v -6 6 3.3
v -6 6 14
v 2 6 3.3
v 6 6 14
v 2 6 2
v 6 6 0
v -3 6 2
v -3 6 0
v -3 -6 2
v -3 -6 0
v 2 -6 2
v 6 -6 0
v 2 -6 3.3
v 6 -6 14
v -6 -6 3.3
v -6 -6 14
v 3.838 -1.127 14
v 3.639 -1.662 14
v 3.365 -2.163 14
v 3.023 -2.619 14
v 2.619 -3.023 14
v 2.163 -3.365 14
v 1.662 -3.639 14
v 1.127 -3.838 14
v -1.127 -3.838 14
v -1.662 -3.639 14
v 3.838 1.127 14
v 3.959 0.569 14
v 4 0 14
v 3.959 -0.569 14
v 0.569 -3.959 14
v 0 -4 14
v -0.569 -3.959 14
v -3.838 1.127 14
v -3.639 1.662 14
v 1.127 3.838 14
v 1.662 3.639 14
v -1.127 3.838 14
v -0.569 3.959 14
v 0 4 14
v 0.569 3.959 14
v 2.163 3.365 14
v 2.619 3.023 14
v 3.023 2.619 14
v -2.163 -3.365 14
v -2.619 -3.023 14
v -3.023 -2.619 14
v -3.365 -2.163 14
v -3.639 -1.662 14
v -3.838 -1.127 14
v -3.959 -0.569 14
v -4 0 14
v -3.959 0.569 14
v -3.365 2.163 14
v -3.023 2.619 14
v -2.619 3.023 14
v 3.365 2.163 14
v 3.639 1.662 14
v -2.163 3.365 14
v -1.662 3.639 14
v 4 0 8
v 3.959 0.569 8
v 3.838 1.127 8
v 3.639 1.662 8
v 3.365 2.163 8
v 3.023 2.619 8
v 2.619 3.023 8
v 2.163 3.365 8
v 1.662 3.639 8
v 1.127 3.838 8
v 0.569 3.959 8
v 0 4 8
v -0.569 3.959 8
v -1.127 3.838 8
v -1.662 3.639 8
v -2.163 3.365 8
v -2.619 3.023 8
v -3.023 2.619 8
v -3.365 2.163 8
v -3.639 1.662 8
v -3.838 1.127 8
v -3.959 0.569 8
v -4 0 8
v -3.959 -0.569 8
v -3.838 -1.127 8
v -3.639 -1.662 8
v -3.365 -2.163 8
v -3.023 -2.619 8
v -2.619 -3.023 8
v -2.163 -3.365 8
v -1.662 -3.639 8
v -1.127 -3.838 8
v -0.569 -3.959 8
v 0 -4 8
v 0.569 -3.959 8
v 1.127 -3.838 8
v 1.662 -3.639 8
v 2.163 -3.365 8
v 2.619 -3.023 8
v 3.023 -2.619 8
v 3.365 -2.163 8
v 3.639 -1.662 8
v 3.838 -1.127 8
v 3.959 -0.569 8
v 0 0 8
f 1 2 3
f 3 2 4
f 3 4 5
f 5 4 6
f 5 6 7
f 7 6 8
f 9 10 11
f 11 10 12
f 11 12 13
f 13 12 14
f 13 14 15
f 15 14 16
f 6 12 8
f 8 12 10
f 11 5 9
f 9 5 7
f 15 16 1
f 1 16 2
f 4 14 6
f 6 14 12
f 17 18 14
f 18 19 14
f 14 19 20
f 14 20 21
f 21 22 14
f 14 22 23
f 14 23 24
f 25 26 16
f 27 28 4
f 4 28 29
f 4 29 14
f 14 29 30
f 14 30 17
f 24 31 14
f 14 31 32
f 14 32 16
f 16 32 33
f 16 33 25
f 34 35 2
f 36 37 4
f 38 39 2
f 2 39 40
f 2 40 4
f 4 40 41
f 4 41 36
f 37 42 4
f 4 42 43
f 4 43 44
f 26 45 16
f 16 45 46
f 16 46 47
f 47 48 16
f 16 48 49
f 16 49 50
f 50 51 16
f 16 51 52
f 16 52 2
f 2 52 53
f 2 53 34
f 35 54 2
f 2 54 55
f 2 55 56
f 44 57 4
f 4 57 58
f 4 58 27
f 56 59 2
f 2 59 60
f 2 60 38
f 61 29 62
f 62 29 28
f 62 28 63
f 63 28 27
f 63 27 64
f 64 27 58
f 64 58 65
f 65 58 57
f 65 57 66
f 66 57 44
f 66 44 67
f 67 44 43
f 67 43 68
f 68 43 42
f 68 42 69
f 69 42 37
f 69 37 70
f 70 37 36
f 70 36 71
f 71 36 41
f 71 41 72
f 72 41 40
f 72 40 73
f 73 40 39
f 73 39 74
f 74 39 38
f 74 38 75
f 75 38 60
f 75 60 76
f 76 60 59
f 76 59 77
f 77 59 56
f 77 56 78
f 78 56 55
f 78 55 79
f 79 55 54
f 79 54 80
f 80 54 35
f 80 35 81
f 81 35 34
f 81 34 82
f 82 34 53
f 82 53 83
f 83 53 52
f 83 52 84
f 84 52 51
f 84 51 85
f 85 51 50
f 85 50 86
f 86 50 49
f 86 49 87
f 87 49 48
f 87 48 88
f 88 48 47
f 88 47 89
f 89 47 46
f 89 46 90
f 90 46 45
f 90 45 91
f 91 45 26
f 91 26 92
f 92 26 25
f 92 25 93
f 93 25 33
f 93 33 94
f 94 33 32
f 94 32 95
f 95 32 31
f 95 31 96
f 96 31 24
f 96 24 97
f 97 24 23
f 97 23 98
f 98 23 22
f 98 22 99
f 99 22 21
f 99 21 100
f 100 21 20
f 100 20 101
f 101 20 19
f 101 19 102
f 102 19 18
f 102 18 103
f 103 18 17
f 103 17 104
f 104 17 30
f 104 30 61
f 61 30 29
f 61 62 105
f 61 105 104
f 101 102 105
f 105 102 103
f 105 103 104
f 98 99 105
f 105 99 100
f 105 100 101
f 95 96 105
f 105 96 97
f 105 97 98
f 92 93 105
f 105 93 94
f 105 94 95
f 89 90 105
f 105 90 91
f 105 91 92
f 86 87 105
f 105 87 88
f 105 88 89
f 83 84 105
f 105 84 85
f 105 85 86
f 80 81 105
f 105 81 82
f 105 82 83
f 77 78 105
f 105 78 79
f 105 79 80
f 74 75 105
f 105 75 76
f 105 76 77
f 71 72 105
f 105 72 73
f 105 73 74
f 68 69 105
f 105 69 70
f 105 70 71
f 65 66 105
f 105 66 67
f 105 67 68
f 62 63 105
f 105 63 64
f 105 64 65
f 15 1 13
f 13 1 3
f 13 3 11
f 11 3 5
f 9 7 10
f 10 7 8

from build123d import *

# Parameters (mm, degrees)
ESQUISSE1_W             = 12
ESQUISSE1_H             = 12
BOSS_EXTRU_1_DEPTH      = 14
ESQUISSE2_R             = 4
ENL_V_MAT_EXTRU_1_DEPTH = 6
ESQUISSE3_W             = 1.3
ESQUISSE3_H             = 14.296544168
ENL_V_MAT_EXTRU_2_DEPTH = 18
ESQUISSE6_W             = 2.656896507
ESQUISSE6_H             = 12.791812985
ENL_V_MAT_EXTRU_4_DEPTH = 13


with BuildPart() as part:
    # Esquisse1 → Boss.-Extru.1 (new body)
    with BuildSketch(Plane.XY):
        Rectangle(ESQUISSE1_W, ESQUISSE1_H)
    extrude(amount=BOSS_EXTRU_1_DEPTH)

    # Esquisse2 → Enlèv. mat.-Extru.1 (cut)
    with BuildSketch(Plane.XY.offset(14)):
        Circle(ESQUISSE2_R)
    extrude(amount=-ENL_V_MAT_EXTRU_1_DEPTH, mode=Mode.SUBTRACT)

    # Esquisse3 → Enlèv. mat.-Extru.2 (cut)
    with BuildSketch(Plane.ZY.offset(16)):
        with Locations((2.65, 0)):
            Rectangle(ESQUISSE3_W, ESQUISSE3_H)
    extrude(amount=-ENL_V_MAT_EXTRU_2_DEPTH, mode=Mode.SUBTRACT)

    # Esquisse6 → Enlèv. mat.-Extru.4 (cut)
    with BuildSketch(Plane.ZY.offset(16)):
        with Locations((0.90678419, -0.070381364)):
            Rectangle(ESQUISSE6_W, ESQUISSE6_H)
    extrude(amount=-ENL_V_MAT_EXTRU_4_DEPTH, mode=Mode.SUBTRACT)


solid = part.part
